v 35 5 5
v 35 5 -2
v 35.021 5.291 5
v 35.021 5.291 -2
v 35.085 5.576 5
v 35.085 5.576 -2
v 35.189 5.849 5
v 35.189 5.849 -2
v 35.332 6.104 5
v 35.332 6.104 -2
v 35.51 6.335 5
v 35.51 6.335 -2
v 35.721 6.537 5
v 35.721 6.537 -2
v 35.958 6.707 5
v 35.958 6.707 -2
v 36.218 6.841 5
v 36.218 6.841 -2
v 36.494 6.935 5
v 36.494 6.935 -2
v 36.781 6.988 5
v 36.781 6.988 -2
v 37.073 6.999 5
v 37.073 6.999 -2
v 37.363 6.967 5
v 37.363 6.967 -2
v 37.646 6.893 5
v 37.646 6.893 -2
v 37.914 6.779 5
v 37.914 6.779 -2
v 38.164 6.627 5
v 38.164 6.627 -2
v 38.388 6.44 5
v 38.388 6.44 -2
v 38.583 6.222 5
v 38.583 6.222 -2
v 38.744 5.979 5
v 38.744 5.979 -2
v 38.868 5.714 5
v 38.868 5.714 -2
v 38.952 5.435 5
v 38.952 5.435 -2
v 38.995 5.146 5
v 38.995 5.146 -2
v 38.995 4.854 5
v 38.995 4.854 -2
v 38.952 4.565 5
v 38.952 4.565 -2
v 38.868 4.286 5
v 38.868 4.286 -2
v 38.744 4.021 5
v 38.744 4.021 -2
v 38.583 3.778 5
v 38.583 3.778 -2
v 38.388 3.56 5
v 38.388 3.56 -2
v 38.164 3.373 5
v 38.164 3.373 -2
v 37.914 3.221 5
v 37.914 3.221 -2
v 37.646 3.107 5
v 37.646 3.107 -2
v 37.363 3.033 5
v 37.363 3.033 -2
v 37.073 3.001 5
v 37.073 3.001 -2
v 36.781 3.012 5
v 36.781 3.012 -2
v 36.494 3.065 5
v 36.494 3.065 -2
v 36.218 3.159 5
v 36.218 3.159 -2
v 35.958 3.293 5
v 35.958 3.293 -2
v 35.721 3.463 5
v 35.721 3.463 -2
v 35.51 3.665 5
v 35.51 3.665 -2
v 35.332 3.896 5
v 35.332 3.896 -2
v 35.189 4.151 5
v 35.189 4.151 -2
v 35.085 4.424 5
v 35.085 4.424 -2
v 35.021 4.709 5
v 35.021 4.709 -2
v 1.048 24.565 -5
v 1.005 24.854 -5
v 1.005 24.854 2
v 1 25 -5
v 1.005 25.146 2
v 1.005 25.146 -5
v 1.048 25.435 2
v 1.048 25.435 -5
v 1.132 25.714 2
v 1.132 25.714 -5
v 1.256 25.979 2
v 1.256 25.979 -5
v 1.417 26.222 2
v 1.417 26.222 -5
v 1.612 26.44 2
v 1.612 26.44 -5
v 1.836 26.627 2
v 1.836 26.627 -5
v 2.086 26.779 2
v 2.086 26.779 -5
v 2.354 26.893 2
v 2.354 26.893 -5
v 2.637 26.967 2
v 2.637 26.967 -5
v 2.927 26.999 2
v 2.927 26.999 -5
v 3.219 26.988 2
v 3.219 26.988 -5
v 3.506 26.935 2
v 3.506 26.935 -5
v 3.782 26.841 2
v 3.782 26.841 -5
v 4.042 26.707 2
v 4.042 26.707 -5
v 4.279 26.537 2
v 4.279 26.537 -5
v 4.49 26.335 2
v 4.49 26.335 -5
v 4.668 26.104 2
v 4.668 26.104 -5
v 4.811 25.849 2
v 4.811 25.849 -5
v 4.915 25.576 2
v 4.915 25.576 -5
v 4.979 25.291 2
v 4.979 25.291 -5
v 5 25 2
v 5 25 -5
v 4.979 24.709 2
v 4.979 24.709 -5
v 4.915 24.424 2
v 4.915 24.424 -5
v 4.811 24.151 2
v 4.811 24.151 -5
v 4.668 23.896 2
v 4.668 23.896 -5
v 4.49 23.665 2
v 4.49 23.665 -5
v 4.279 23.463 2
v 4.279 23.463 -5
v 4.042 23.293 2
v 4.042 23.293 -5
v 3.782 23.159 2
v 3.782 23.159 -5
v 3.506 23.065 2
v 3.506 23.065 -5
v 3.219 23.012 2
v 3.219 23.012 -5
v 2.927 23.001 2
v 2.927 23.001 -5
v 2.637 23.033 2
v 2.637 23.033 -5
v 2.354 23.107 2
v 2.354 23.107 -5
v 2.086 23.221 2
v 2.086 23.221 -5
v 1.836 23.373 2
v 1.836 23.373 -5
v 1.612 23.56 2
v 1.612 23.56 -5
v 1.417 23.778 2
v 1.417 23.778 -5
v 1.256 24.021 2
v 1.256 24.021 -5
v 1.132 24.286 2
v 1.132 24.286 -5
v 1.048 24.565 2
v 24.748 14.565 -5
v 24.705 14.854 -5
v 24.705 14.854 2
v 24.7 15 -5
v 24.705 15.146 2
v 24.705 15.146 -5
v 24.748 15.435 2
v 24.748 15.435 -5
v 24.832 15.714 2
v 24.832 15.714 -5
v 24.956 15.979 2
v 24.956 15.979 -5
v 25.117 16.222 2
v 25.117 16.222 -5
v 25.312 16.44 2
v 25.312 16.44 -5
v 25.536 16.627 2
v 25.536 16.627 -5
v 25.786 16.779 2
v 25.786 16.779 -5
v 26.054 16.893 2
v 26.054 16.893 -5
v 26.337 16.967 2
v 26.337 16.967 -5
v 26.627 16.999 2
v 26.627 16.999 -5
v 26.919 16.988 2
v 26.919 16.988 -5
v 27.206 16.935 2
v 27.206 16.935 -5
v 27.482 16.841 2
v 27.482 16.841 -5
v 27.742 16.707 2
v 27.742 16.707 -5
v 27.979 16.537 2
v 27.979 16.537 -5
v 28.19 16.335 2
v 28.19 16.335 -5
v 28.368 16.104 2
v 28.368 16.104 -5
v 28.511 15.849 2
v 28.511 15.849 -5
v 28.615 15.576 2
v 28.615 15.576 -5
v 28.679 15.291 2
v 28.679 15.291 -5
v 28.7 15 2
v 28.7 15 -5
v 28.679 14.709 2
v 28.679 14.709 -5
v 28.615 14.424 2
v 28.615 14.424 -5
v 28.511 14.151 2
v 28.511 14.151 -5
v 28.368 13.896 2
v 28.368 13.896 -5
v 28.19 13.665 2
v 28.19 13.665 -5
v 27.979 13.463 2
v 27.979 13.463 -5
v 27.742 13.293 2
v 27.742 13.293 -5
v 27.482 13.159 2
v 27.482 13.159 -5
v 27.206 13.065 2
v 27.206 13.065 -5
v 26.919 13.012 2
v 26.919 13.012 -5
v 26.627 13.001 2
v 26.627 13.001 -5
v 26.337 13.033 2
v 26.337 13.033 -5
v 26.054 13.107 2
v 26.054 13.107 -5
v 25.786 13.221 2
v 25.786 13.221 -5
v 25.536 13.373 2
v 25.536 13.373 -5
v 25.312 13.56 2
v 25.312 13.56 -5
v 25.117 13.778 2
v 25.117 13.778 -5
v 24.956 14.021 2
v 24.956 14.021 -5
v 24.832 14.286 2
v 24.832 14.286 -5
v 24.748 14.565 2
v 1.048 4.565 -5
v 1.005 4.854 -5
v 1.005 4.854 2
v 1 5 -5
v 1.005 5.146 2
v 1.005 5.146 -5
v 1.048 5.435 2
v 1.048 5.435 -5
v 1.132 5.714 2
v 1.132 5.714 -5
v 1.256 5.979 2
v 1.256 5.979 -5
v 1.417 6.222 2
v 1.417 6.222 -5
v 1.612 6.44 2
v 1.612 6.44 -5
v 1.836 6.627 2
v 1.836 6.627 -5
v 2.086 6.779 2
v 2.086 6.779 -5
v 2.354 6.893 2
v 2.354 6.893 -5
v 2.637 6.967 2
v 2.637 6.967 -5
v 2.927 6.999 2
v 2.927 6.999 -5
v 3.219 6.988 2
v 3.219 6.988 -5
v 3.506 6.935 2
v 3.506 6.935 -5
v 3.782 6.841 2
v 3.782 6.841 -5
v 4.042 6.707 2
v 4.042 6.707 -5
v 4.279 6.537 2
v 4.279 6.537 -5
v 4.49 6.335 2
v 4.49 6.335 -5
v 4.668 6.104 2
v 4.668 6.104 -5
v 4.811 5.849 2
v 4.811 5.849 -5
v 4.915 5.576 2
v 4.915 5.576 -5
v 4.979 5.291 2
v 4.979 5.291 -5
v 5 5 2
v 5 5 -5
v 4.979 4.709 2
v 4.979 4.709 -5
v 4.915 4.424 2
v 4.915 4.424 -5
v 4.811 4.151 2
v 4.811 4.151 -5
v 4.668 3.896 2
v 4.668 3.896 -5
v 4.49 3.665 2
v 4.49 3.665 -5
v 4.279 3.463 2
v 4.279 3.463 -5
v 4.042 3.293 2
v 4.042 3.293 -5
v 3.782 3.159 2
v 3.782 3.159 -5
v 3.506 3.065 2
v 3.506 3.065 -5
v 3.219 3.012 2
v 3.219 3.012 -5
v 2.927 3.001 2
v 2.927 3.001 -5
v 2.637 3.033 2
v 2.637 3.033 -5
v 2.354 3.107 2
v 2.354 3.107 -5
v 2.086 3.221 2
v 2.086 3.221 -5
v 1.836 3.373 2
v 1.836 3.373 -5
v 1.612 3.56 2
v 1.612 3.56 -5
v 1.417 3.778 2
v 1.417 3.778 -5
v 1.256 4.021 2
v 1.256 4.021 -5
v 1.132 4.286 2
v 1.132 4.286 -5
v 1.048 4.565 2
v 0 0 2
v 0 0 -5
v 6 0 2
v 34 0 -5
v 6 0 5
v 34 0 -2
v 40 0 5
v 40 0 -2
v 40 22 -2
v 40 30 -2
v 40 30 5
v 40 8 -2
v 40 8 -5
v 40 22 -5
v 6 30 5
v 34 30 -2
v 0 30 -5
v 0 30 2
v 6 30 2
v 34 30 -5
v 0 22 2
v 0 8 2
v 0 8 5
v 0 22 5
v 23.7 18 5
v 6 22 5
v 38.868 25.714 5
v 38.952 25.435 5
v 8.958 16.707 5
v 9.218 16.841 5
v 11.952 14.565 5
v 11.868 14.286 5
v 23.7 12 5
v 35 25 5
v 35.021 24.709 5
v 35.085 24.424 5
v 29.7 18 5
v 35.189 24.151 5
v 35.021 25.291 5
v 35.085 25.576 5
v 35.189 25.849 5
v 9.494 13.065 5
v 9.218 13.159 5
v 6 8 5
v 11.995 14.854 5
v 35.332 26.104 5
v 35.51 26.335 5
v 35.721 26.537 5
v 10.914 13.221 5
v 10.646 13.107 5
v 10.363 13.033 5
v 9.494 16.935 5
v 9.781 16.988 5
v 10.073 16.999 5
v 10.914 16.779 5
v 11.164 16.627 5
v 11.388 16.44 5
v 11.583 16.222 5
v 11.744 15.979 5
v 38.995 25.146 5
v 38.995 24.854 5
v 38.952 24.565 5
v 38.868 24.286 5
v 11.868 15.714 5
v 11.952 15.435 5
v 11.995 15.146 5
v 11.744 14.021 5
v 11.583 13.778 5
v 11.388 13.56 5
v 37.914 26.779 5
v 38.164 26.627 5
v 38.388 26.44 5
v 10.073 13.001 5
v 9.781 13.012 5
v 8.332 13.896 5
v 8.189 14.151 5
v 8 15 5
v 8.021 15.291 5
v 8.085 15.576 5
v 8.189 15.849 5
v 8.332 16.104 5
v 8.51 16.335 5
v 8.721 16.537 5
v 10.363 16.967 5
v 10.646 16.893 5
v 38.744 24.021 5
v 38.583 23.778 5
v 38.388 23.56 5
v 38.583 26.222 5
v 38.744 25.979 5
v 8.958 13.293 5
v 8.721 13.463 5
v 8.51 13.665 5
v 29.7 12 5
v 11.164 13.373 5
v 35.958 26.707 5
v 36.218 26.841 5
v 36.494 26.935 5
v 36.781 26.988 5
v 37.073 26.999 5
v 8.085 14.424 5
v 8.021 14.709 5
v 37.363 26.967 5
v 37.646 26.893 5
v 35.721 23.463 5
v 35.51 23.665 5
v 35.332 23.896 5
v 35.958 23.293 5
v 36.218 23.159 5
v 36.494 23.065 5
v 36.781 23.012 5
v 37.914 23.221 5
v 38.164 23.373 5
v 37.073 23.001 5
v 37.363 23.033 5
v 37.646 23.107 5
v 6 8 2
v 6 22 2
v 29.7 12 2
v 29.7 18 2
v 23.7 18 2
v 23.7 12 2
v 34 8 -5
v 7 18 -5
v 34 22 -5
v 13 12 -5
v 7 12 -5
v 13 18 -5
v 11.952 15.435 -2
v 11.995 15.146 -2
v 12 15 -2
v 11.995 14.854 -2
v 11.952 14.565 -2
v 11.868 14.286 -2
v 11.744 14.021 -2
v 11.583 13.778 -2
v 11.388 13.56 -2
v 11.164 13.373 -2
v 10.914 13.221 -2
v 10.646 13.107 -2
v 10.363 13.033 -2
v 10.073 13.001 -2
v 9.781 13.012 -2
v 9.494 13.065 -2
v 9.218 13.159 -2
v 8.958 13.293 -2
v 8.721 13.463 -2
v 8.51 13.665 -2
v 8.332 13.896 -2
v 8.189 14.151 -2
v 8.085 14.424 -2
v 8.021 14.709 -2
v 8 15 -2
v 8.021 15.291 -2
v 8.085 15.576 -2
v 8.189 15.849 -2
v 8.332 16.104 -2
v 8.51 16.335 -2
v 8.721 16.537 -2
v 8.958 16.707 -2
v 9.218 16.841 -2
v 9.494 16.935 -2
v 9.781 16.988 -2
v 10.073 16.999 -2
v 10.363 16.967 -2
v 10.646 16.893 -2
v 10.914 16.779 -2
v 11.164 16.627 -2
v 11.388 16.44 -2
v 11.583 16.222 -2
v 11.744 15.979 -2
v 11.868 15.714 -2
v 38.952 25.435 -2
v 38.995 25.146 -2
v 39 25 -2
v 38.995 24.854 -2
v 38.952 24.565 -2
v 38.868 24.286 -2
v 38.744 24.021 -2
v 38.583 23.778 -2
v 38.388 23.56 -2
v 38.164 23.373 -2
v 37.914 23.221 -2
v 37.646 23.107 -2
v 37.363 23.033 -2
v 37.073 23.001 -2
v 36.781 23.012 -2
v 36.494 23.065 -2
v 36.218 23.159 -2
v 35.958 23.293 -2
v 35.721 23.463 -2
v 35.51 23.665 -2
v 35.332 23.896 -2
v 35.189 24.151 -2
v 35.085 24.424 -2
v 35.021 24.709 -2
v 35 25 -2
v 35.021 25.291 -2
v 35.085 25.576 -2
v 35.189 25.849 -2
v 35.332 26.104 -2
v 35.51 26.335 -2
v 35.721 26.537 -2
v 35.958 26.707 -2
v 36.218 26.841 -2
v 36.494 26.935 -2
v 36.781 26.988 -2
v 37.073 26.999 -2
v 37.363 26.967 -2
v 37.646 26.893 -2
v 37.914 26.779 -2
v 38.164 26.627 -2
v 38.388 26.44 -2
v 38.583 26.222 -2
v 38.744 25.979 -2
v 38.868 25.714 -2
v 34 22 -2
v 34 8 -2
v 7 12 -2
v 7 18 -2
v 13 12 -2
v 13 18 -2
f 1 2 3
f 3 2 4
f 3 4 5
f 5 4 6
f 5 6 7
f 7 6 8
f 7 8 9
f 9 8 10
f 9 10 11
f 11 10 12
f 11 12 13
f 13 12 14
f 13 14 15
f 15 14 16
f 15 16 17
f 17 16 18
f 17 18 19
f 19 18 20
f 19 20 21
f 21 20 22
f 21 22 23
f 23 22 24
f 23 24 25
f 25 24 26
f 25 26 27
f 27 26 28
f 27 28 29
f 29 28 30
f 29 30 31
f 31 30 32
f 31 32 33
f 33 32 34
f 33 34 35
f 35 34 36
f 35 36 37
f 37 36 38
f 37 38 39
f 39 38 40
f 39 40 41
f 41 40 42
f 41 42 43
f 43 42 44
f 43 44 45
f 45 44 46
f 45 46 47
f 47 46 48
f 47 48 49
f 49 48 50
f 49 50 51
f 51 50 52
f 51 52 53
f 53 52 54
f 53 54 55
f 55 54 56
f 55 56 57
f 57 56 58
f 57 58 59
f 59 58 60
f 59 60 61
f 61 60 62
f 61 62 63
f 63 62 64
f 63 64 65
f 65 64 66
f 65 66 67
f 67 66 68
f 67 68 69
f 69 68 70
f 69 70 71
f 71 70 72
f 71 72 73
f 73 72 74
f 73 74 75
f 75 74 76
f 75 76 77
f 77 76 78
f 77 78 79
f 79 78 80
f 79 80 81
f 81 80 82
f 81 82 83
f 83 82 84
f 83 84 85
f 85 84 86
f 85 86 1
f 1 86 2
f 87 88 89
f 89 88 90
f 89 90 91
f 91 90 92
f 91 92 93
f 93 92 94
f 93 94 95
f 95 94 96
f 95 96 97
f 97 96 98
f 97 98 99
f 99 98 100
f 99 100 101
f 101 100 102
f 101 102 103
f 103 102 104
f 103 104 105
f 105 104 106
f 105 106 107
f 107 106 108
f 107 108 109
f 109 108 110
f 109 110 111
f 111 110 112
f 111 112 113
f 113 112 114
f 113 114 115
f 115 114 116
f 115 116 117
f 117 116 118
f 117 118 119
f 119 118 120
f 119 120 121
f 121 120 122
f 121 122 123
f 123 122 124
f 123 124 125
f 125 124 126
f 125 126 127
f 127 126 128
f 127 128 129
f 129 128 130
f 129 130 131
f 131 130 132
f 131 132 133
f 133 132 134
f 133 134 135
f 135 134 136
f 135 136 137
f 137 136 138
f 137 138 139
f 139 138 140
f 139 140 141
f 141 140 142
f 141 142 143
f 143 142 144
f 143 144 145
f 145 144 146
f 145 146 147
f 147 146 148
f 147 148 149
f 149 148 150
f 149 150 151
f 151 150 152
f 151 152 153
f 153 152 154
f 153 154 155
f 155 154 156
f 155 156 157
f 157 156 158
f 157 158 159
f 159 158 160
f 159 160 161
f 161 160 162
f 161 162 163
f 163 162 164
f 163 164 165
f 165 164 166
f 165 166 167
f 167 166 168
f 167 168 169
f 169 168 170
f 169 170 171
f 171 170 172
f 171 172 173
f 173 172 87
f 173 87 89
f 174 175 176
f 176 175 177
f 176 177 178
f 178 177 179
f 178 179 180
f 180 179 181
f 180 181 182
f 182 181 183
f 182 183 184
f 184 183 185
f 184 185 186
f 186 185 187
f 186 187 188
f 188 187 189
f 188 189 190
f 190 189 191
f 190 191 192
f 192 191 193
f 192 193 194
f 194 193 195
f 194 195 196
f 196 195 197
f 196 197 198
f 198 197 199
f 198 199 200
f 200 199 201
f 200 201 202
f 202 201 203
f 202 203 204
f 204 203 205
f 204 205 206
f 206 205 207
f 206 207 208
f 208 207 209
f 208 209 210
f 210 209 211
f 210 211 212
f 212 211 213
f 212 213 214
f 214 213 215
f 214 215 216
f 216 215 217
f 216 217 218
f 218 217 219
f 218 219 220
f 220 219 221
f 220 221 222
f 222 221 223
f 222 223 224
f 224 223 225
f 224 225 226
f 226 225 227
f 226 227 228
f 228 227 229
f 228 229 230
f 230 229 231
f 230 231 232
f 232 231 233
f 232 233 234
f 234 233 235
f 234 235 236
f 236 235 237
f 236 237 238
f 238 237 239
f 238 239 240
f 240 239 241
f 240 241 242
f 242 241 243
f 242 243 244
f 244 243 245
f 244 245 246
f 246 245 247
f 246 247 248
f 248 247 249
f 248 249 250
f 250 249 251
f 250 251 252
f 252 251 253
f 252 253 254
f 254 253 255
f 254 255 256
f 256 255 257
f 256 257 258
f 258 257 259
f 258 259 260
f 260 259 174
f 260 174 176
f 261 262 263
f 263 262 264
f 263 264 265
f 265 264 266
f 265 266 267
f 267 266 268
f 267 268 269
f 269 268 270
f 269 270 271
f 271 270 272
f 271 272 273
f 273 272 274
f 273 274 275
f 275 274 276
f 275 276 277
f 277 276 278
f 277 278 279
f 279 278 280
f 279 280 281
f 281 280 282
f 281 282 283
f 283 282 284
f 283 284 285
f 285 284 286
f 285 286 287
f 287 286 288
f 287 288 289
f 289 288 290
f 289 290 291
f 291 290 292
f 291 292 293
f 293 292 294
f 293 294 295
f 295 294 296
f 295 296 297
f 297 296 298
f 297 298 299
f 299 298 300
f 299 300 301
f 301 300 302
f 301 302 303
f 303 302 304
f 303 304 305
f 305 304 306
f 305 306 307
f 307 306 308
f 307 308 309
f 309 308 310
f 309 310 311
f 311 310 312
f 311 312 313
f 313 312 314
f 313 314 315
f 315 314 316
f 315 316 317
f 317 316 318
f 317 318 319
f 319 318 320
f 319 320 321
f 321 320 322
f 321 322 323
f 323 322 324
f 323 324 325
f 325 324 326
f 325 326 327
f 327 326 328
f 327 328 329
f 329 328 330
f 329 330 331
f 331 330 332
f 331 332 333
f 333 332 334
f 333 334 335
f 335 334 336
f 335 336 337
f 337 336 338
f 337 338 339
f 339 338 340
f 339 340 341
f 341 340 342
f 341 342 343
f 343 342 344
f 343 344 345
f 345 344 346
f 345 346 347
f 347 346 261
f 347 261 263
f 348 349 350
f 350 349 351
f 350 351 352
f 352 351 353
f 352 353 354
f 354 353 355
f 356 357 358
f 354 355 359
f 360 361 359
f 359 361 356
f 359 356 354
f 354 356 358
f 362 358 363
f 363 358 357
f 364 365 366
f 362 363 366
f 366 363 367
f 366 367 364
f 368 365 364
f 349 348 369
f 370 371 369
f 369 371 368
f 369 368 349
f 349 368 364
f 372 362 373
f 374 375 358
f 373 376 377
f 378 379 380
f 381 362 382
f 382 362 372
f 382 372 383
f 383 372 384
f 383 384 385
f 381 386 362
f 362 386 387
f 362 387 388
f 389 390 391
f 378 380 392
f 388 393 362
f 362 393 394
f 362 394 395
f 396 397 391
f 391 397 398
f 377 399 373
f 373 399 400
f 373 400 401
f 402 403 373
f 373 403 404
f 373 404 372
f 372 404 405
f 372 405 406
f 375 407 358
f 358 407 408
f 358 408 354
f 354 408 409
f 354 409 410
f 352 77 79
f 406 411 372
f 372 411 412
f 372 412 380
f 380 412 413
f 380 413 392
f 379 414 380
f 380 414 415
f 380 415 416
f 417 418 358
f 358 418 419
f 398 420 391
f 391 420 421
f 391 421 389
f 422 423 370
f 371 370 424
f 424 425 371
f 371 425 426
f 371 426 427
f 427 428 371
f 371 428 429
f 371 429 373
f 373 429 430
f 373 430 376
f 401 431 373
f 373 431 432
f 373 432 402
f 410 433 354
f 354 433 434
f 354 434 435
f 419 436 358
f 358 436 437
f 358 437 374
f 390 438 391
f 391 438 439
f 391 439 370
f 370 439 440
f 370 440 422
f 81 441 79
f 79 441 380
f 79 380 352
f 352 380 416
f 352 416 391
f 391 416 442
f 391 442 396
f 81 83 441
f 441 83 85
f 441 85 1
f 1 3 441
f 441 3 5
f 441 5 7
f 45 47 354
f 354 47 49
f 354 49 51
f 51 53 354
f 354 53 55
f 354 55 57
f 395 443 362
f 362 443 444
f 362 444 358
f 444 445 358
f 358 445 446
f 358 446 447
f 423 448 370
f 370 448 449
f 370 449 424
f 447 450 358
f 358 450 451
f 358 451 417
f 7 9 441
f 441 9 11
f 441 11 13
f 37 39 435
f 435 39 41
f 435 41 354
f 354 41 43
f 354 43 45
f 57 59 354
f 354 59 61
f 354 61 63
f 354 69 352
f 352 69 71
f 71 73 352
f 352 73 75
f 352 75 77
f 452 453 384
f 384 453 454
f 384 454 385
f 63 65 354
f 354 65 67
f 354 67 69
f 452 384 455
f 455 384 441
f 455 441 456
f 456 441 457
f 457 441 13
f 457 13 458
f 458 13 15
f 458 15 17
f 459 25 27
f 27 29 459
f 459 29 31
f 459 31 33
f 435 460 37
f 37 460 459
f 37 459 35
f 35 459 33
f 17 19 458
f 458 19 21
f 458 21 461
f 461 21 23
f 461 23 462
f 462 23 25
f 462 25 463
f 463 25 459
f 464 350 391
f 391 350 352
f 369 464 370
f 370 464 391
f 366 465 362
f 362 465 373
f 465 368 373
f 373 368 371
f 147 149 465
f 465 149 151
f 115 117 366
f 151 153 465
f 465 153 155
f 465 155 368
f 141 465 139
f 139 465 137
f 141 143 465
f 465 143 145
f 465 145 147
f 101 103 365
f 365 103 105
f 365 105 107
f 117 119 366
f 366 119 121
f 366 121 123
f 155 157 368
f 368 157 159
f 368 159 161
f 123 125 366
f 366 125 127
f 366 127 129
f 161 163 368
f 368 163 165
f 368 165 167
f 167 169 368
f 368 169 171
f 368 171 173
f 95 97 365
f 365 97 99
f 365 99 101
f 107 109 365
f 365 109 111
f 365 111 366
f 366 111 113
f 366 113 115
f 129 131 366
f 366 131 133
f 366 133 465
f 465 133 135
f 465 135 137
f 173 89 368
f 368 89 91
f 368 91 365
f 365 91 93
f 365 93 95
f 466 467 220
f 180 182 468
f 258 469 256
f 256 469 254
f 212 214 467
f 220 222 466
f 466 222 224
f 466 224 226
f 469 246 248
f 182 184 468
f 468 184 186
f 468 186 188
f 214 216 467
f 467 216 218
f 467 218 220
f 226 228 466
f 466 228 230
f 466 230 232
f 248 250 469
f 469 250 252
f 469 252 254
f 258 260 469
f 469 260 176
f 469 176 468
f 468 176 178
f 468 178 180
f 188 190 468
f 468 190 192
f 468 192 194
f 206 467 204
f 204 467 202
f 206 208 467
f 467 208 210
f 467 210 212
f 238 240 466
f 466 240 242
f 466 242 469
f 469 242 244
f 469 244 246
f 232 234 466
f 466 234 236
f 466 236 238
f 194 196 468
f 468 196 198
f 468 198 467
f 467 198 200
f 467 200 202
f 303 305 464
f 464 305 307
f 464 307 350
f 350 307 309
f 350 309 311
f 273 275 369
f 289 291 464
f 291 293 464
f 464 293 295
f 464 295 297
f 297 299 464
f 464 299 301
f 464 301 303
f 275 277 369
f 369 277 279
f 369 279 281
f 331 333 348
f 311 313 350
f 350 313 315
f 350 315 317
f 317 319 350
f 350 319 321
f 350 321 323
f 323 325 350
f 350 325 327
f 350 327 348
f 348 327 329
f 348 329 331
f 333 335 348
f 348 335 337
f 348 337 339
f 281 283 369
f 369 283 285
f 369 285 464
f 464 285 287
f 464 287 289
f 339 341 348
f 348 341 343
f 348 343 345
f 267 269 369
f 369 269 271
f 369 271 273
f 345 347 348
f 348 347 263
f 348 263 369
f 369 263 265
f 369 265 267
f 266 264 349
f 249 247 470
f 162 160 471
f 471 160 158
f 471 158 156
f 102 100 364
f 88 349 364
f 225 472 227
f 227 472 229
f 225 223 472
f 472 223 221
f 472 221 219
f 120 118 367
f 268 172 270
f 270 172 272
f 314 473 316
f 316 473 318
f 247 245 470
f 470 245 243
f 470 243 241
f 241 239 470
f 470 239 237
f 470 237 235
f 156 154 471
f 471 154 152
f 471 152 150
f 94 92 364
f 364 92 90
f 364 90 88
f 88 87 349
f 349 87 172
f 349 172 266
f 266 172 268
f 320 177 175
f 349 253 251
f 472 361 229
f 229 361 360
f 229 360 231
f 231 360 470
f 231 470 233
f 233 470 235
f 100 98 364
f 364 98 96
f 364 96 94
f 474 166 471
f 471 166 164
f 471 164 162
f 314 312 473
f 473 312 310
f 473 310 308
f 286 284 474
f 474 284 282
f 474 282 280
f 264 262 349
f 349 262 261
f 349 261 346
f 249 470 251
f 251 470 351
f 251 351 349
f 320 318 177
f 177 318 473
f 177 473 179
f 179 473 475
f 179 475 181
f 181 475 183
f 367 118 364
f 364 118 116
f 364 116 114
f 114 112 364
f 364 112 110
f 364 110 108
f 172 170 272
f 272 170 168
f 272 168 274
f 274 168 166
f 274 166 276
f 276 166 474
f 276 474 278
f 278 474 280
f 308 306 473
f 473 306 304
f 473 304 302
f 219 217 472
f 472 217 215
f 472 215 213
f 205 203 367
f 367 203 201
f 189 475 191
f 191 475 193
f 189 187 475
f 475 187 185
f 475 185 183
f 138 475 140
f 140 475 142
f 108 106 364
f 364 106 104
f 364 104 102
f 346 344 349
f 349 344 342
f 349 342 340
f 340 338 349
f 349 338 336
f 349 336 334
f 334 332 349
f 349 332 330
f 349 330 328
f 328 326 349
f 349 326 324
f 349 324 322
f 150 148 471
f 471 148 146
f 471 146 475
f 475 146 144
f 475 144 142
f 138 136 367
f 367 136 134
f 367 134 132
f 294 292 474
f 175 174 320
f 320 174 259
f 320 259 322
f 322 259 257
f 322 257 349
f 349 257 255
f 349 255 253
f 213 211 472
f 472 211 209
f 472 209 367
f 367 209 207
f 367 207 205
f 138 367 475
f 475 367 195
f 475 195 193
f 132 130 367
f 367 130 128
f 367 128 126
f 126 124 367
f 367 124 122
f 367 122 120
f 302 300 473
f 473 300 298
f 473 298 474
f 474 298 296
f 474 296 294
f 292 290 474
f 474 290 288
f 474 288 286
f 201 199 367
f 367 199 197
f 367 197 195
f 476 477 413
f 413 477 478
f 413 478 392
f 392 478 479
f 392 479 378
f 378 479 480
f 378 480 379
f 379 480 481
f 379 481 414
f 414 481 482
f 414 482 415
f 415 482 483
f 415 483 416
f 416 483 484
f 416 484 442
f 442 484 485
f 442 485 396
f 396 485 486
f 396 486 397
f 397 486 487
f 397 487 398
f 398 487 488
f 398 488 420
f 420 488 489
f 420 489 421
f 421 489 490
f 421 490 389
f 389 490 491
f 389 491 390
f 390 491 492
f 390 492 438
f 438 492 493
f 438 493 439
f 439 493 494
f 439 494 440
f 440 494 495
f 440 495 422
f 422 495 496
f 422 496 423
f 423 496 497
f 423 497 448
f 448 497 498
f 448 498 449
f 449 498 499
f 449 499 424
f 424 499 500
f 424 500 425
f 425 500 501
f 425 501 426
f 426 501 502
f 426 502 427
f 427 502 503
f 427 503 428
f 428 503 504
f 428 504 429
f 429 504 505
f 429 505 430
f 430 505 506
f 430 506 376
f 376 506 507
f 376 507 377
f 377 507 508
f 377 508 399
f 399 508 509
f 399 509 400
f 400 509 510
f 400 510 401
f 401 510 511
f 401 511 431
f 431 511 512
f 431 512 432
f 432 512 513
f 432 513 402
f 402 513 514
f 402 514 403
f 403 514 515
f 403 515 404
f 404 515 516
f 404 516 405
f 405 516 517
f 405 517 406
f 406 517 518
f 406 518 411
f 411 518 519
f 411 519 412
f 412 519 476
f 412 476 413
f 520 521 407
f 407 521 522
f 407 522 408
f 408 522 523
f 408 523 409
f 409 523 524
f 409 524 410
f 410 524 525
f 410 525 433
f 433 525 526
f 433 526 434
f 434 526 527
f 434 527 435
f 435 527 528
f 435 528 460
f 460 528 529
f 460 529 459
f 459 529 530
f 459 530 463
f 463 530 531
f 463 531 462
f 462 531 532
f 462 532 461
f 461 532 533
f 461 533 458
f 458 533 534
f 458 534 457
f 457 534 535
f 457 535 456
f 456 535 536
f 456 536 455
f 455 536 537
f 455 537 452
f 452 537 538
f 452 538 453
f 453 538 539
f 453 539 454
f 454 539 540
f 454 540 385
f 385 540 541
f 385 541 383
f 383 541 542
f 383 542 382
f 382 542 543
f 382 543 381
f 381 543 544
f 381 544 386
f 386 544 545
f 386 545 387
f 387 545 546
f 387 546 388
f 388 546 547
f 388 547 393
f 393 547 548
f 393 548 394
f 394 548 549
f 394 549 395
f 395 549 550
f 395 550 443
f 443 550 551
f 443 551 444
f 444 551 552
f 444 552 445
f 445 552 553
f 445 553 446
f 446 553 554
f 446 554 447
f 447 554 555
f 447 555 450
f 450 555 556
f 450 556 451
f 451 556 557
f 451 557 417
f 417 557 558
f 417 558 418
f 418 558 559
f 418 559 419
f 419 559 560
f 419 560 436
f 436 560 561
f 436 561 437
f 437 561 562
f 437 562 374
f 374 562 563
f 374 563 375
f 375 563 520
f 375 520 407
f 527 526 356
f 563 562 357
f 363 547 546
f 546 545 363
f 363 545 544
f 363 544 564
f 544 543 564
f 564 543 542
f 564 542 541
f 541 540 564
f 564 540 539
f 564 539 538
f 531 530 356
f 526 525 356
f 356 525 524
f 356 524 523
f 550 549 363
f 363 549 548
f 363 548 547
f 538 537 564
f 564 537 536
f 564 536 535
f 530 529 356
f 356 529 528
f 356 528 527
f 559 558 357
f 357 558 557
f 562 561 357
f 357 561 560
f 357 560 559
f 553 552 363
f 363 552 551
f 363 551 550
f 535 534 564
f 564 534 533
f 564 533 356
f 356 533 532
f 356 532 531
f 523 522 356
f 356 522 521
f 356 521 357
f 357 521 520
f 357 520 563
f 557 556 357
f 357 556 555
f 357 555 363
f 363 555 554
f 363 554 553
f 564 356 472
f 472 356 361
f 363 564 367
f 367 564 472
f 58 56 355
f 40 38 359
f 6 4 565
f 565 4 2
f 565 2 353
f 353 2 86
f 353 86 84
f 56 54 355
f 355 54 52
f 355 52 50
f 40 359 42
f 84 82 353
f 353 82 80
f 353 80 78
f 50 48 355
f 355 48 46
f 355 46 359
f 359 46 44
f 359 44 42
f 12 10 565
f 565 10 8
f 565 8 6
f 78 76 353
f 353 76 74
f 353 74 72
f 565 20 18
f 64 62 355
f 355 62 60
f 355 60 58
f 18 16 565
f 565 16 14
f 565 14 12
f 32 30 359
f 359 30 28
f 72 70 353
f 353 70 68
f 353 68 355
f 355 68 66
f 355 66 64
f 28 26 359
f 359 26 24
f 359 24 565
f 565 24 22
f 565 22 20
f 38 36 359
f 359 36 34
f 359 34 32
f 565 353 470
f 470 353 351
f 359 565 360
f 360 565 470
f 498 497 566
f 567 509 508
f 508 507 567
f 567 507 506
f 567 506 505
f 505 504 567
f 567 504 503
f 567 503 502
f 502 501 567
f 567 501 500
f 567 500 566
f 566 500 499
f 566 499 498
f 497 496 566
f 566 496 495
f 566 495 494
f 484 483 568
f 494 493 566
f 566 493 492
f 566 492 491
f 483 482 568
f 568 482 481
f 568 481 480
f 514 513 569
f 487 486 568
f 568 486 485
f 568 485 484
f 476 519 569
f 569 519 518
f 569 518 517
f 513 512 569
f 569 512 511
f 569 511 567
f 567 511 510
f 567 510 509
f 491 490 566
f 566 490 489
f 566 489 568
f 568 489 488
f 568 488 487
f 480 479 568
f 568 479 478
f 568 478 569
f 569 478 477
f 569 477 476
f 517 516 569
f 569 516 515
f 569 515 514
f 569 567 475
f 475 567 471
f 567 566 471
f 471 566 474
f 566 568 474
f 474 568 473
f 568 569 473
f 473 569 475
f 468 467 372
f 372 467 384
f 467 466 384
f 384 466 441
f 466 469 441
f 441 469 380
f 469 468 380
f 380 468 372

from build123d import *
from build123d.topology import SkipClean

# Parameters (mm, degrees)
SKETCH_1_W          = 40
SKETCH_1_H          = 30
EXTRUDE_1_DEPTH     = 5
SKETCH_2_R          = 2
CUT_EXTRUDE_1_DEPTH = 5
SKETCH_3_R          = 3
CUT_EXTRUDE_2_DEPTH = 2.5
SKETCH_5_W          = 40
SKETCH_5_H          = 30
SKETCH_5_R          = 2
EXTRUDE_2_DEPTH     = 3
SKETCH_3_2_R        = 3
CUT_EXTRUDE_3_DEPTH = 3
SKETCH_9_W          = 40
SKETCH_9_H          = 30
SKETCH_9_R          = 2
EXTRUDE_4_DEPTH     = 2
SKETCH_8_R          = 2
CUT_EXTRUDE_5_DEPTH = 10
CUT_EXTRUDE_START   = 10
SKETCH_8_4_R        = 2
CUT_EXTRUDE_6_DEPTH = 10
CUT_EXTRUDE_7_DEPTH = 3
CUT_EXTRUDE_8_DEPTH = 3


with BuildPart() as part:
    # 草图1 → 凸台-拉伸1 (new body)
    with BuildSketch(Plane.XY):
        with Locations((20, 15)):
            Rectangle(SKETCH_1_W, SKETCH_1_H)
    extrude(amount=EXTRUDE_1_DEPTH)

    # 草图2 → 切除-拉伸1 (cut)
    with BuildSketch(Plane.XY.offset(5)):
        with Locations((3, 25)):
            Circle(SKETCH_2_R)
        with Locations((3, 5)):
            Circle(SKETCH_2_R)
        with Locations((26.7, 15)):
            Circle(SKETCH_2_R)
    extrude(amount=-CUT_EXTRUDE_1_DEPTH, mode=Mode.SUBTRACT)

    # 草图3 → 切除-拉伸2 (cut)
    with BuildSketch(Plane.XY.offset(5)):
        with Locations((26.7, 15)):
            Circle(SKETCH_3_R)
        Polygon((3, 22), (6, 22), (6, 30), (0, 30), (0, 22), align=None)
        Polygon((3, 8), (0, 8), (0, 0), (6, 0), (6, 8), align=None)
    extrude(amount=-CUT_EXTRUDE_2_DEPTH, mode=Mode.SUBTRACT)

    # 草图5 → 凸台-拉伸2 (add)
    with SkipClean():  # the faces are left unmerged after this step: merging them gives an invalid solid
        with BuildSketch(Plane(origin=(0, 0, 0), x_dir=(-1, 0, 0), z_dir=(0, 0, -1))):
            with Locations((-20, 15)):
                Rectangle(SKETCH_5_W, SKETCH_5_H)
            with Locations((-26.7, 15)):
                Circle(SKETCH_5_R, mode=Mode.SUBTRACT)
            with Locations((-3, 25)):
                Circle(SKETCH_5_R, mode=Mode.SUBTRACT)
            with Locations((-3, 5)):
                Circle(SKETCH_5_R, mode=Mode.SUBTRACT)
        extrude(amount=EXTRUDE_2_DEPTH)

    # 草图3<2> → 切除-拉伸3 (cut)
    with SkipClean():  # the faces are left unmerged after this step: merging them gives an invalid solid
        with BuildSketch(Plane.XY.offset(5)):
            with Locations((26.7, 15)):
                Circle(SKETCH_3_2_R)
            Polygon((3, 22), (6, 22), (6, 30), (0, 30), (0, 22), align=None)
            Polygon((3, 8), (0, 8), (0, 0), (6, 0), (6, 8), align=None)
        extrude(amount=-CUT_EXTRUDE_3_DEPTH, mode=Mode.SUBTRACT)

    # 草图9 → 凸台-拉伸4 (add)
    with SkipClean():  # the faces are left unmerged after this step: merging them gives an invalid solid
        with BuildSketch(Plane(origin=(0, 0, -3), x_dir=(-1, 0, 0), z_dir=(0, 0, -1))):
            with Locations((-20, 15)):
                Rectangle(SKETCH_9_W, SKETCH_9_H)
            with Locations((-3, 5)):
                Circle(SKETCH_9_R, mode=Mode.SUBTRACT)
            with Locations((-26.7, 15)):
                Circle(SKETCH_9_R, mode=Mode.SUBTRACT)
            with Locations((-3, 25)):
                Circle(SKETCH_9_R, mode=Mode.SUBTRACT)
        extrude(amount=EXTRUDE_4_DEPTH)

    # 草图8 → 切除-拉伸5 (cut)
    with SkipClean():  # the faces are left unmerged after this step: merging them gives an invalid solid
        with BuildSketch(Plane(origin=(0, 0, -3), x_dir=(-1, 0, 0), z_dir=(0, 0, -1))):
            with Locations((-37, 25)):
                Circle(SKETCH_8_R)
            with Locations((-37, 5)):
                Circle(SKETCH_8_R)
            with Locations((-10, 15)):
                Circle(SKETCH_8_R)
        extrude(amount=-CUT_EXTRUDE_5_DEPTH, mode=Mode.SUBTRACT)

    # 草图8<4> → 切除-拉伸6 (cut)
    with SkipClean():  # the faces are left unmerged after this step: merging them gives an invalid solid
        with BuildSketch(Plane(origin=(0, 0, -3), x_dir=(-1, 0, 0), z_dir=(0, 0, -1)).offset(CUT_EXTRUDE_START)):
            with Locations((-37, 25)):
                Circle(SKETCH_8_4_R)
            with Locations((-37, 5)):
                Circle(SKETCH_8_4_R)
            with Locations((-10, 15)):
                Circle(SKETCH_8_4_R)
        extrude(amount=-CUT_EXTRUDE_6_DEPTH, mode=Mode.SUBTRACT)

    # 草图11 → 切除-拉伸7 (cut)
    with SkipClean():  # the faces are left unmerged after this step: merging them gives an invalid solid
        with BuildSketch(Plane(origin=(0, 0, -5), x_dir=(-1, 0, 0), z_dir=(0, 0, -1))):
            Polygon((-37, 22), (-40, 22), (-40, 30), (-34, 30), (-34, 22), align=None)
            Polygon((-37, 8), (-40, 8), (-40, 0), (-34, 0), (-34, 8), align=None)
            Polygon((-10, 18), (-7, 18), (-7, 12), (-13, 12), (-13, 18), align=None)
        extrude(amount=-CUT_EXTRUDE_7_DEPTH, mode=Mode.SUBTRACT)

    # 草图12 → 切除-拉伸8 (cut)
    with SkipClean():  # the faces are left unmerged after this step: merging them gives an invalid solid
        with BuildSketch(Plane.XY.offset(5)):
            Polygon((26.7, 18), (29.7, 18), (29.7, 12), (23.7, 12), (23.7, 18), align=None)
        extrude(amount=-CUT_EXTRUDE_8_DEPTH, mode=Mode.SUBTRACT)


solid = part.part
